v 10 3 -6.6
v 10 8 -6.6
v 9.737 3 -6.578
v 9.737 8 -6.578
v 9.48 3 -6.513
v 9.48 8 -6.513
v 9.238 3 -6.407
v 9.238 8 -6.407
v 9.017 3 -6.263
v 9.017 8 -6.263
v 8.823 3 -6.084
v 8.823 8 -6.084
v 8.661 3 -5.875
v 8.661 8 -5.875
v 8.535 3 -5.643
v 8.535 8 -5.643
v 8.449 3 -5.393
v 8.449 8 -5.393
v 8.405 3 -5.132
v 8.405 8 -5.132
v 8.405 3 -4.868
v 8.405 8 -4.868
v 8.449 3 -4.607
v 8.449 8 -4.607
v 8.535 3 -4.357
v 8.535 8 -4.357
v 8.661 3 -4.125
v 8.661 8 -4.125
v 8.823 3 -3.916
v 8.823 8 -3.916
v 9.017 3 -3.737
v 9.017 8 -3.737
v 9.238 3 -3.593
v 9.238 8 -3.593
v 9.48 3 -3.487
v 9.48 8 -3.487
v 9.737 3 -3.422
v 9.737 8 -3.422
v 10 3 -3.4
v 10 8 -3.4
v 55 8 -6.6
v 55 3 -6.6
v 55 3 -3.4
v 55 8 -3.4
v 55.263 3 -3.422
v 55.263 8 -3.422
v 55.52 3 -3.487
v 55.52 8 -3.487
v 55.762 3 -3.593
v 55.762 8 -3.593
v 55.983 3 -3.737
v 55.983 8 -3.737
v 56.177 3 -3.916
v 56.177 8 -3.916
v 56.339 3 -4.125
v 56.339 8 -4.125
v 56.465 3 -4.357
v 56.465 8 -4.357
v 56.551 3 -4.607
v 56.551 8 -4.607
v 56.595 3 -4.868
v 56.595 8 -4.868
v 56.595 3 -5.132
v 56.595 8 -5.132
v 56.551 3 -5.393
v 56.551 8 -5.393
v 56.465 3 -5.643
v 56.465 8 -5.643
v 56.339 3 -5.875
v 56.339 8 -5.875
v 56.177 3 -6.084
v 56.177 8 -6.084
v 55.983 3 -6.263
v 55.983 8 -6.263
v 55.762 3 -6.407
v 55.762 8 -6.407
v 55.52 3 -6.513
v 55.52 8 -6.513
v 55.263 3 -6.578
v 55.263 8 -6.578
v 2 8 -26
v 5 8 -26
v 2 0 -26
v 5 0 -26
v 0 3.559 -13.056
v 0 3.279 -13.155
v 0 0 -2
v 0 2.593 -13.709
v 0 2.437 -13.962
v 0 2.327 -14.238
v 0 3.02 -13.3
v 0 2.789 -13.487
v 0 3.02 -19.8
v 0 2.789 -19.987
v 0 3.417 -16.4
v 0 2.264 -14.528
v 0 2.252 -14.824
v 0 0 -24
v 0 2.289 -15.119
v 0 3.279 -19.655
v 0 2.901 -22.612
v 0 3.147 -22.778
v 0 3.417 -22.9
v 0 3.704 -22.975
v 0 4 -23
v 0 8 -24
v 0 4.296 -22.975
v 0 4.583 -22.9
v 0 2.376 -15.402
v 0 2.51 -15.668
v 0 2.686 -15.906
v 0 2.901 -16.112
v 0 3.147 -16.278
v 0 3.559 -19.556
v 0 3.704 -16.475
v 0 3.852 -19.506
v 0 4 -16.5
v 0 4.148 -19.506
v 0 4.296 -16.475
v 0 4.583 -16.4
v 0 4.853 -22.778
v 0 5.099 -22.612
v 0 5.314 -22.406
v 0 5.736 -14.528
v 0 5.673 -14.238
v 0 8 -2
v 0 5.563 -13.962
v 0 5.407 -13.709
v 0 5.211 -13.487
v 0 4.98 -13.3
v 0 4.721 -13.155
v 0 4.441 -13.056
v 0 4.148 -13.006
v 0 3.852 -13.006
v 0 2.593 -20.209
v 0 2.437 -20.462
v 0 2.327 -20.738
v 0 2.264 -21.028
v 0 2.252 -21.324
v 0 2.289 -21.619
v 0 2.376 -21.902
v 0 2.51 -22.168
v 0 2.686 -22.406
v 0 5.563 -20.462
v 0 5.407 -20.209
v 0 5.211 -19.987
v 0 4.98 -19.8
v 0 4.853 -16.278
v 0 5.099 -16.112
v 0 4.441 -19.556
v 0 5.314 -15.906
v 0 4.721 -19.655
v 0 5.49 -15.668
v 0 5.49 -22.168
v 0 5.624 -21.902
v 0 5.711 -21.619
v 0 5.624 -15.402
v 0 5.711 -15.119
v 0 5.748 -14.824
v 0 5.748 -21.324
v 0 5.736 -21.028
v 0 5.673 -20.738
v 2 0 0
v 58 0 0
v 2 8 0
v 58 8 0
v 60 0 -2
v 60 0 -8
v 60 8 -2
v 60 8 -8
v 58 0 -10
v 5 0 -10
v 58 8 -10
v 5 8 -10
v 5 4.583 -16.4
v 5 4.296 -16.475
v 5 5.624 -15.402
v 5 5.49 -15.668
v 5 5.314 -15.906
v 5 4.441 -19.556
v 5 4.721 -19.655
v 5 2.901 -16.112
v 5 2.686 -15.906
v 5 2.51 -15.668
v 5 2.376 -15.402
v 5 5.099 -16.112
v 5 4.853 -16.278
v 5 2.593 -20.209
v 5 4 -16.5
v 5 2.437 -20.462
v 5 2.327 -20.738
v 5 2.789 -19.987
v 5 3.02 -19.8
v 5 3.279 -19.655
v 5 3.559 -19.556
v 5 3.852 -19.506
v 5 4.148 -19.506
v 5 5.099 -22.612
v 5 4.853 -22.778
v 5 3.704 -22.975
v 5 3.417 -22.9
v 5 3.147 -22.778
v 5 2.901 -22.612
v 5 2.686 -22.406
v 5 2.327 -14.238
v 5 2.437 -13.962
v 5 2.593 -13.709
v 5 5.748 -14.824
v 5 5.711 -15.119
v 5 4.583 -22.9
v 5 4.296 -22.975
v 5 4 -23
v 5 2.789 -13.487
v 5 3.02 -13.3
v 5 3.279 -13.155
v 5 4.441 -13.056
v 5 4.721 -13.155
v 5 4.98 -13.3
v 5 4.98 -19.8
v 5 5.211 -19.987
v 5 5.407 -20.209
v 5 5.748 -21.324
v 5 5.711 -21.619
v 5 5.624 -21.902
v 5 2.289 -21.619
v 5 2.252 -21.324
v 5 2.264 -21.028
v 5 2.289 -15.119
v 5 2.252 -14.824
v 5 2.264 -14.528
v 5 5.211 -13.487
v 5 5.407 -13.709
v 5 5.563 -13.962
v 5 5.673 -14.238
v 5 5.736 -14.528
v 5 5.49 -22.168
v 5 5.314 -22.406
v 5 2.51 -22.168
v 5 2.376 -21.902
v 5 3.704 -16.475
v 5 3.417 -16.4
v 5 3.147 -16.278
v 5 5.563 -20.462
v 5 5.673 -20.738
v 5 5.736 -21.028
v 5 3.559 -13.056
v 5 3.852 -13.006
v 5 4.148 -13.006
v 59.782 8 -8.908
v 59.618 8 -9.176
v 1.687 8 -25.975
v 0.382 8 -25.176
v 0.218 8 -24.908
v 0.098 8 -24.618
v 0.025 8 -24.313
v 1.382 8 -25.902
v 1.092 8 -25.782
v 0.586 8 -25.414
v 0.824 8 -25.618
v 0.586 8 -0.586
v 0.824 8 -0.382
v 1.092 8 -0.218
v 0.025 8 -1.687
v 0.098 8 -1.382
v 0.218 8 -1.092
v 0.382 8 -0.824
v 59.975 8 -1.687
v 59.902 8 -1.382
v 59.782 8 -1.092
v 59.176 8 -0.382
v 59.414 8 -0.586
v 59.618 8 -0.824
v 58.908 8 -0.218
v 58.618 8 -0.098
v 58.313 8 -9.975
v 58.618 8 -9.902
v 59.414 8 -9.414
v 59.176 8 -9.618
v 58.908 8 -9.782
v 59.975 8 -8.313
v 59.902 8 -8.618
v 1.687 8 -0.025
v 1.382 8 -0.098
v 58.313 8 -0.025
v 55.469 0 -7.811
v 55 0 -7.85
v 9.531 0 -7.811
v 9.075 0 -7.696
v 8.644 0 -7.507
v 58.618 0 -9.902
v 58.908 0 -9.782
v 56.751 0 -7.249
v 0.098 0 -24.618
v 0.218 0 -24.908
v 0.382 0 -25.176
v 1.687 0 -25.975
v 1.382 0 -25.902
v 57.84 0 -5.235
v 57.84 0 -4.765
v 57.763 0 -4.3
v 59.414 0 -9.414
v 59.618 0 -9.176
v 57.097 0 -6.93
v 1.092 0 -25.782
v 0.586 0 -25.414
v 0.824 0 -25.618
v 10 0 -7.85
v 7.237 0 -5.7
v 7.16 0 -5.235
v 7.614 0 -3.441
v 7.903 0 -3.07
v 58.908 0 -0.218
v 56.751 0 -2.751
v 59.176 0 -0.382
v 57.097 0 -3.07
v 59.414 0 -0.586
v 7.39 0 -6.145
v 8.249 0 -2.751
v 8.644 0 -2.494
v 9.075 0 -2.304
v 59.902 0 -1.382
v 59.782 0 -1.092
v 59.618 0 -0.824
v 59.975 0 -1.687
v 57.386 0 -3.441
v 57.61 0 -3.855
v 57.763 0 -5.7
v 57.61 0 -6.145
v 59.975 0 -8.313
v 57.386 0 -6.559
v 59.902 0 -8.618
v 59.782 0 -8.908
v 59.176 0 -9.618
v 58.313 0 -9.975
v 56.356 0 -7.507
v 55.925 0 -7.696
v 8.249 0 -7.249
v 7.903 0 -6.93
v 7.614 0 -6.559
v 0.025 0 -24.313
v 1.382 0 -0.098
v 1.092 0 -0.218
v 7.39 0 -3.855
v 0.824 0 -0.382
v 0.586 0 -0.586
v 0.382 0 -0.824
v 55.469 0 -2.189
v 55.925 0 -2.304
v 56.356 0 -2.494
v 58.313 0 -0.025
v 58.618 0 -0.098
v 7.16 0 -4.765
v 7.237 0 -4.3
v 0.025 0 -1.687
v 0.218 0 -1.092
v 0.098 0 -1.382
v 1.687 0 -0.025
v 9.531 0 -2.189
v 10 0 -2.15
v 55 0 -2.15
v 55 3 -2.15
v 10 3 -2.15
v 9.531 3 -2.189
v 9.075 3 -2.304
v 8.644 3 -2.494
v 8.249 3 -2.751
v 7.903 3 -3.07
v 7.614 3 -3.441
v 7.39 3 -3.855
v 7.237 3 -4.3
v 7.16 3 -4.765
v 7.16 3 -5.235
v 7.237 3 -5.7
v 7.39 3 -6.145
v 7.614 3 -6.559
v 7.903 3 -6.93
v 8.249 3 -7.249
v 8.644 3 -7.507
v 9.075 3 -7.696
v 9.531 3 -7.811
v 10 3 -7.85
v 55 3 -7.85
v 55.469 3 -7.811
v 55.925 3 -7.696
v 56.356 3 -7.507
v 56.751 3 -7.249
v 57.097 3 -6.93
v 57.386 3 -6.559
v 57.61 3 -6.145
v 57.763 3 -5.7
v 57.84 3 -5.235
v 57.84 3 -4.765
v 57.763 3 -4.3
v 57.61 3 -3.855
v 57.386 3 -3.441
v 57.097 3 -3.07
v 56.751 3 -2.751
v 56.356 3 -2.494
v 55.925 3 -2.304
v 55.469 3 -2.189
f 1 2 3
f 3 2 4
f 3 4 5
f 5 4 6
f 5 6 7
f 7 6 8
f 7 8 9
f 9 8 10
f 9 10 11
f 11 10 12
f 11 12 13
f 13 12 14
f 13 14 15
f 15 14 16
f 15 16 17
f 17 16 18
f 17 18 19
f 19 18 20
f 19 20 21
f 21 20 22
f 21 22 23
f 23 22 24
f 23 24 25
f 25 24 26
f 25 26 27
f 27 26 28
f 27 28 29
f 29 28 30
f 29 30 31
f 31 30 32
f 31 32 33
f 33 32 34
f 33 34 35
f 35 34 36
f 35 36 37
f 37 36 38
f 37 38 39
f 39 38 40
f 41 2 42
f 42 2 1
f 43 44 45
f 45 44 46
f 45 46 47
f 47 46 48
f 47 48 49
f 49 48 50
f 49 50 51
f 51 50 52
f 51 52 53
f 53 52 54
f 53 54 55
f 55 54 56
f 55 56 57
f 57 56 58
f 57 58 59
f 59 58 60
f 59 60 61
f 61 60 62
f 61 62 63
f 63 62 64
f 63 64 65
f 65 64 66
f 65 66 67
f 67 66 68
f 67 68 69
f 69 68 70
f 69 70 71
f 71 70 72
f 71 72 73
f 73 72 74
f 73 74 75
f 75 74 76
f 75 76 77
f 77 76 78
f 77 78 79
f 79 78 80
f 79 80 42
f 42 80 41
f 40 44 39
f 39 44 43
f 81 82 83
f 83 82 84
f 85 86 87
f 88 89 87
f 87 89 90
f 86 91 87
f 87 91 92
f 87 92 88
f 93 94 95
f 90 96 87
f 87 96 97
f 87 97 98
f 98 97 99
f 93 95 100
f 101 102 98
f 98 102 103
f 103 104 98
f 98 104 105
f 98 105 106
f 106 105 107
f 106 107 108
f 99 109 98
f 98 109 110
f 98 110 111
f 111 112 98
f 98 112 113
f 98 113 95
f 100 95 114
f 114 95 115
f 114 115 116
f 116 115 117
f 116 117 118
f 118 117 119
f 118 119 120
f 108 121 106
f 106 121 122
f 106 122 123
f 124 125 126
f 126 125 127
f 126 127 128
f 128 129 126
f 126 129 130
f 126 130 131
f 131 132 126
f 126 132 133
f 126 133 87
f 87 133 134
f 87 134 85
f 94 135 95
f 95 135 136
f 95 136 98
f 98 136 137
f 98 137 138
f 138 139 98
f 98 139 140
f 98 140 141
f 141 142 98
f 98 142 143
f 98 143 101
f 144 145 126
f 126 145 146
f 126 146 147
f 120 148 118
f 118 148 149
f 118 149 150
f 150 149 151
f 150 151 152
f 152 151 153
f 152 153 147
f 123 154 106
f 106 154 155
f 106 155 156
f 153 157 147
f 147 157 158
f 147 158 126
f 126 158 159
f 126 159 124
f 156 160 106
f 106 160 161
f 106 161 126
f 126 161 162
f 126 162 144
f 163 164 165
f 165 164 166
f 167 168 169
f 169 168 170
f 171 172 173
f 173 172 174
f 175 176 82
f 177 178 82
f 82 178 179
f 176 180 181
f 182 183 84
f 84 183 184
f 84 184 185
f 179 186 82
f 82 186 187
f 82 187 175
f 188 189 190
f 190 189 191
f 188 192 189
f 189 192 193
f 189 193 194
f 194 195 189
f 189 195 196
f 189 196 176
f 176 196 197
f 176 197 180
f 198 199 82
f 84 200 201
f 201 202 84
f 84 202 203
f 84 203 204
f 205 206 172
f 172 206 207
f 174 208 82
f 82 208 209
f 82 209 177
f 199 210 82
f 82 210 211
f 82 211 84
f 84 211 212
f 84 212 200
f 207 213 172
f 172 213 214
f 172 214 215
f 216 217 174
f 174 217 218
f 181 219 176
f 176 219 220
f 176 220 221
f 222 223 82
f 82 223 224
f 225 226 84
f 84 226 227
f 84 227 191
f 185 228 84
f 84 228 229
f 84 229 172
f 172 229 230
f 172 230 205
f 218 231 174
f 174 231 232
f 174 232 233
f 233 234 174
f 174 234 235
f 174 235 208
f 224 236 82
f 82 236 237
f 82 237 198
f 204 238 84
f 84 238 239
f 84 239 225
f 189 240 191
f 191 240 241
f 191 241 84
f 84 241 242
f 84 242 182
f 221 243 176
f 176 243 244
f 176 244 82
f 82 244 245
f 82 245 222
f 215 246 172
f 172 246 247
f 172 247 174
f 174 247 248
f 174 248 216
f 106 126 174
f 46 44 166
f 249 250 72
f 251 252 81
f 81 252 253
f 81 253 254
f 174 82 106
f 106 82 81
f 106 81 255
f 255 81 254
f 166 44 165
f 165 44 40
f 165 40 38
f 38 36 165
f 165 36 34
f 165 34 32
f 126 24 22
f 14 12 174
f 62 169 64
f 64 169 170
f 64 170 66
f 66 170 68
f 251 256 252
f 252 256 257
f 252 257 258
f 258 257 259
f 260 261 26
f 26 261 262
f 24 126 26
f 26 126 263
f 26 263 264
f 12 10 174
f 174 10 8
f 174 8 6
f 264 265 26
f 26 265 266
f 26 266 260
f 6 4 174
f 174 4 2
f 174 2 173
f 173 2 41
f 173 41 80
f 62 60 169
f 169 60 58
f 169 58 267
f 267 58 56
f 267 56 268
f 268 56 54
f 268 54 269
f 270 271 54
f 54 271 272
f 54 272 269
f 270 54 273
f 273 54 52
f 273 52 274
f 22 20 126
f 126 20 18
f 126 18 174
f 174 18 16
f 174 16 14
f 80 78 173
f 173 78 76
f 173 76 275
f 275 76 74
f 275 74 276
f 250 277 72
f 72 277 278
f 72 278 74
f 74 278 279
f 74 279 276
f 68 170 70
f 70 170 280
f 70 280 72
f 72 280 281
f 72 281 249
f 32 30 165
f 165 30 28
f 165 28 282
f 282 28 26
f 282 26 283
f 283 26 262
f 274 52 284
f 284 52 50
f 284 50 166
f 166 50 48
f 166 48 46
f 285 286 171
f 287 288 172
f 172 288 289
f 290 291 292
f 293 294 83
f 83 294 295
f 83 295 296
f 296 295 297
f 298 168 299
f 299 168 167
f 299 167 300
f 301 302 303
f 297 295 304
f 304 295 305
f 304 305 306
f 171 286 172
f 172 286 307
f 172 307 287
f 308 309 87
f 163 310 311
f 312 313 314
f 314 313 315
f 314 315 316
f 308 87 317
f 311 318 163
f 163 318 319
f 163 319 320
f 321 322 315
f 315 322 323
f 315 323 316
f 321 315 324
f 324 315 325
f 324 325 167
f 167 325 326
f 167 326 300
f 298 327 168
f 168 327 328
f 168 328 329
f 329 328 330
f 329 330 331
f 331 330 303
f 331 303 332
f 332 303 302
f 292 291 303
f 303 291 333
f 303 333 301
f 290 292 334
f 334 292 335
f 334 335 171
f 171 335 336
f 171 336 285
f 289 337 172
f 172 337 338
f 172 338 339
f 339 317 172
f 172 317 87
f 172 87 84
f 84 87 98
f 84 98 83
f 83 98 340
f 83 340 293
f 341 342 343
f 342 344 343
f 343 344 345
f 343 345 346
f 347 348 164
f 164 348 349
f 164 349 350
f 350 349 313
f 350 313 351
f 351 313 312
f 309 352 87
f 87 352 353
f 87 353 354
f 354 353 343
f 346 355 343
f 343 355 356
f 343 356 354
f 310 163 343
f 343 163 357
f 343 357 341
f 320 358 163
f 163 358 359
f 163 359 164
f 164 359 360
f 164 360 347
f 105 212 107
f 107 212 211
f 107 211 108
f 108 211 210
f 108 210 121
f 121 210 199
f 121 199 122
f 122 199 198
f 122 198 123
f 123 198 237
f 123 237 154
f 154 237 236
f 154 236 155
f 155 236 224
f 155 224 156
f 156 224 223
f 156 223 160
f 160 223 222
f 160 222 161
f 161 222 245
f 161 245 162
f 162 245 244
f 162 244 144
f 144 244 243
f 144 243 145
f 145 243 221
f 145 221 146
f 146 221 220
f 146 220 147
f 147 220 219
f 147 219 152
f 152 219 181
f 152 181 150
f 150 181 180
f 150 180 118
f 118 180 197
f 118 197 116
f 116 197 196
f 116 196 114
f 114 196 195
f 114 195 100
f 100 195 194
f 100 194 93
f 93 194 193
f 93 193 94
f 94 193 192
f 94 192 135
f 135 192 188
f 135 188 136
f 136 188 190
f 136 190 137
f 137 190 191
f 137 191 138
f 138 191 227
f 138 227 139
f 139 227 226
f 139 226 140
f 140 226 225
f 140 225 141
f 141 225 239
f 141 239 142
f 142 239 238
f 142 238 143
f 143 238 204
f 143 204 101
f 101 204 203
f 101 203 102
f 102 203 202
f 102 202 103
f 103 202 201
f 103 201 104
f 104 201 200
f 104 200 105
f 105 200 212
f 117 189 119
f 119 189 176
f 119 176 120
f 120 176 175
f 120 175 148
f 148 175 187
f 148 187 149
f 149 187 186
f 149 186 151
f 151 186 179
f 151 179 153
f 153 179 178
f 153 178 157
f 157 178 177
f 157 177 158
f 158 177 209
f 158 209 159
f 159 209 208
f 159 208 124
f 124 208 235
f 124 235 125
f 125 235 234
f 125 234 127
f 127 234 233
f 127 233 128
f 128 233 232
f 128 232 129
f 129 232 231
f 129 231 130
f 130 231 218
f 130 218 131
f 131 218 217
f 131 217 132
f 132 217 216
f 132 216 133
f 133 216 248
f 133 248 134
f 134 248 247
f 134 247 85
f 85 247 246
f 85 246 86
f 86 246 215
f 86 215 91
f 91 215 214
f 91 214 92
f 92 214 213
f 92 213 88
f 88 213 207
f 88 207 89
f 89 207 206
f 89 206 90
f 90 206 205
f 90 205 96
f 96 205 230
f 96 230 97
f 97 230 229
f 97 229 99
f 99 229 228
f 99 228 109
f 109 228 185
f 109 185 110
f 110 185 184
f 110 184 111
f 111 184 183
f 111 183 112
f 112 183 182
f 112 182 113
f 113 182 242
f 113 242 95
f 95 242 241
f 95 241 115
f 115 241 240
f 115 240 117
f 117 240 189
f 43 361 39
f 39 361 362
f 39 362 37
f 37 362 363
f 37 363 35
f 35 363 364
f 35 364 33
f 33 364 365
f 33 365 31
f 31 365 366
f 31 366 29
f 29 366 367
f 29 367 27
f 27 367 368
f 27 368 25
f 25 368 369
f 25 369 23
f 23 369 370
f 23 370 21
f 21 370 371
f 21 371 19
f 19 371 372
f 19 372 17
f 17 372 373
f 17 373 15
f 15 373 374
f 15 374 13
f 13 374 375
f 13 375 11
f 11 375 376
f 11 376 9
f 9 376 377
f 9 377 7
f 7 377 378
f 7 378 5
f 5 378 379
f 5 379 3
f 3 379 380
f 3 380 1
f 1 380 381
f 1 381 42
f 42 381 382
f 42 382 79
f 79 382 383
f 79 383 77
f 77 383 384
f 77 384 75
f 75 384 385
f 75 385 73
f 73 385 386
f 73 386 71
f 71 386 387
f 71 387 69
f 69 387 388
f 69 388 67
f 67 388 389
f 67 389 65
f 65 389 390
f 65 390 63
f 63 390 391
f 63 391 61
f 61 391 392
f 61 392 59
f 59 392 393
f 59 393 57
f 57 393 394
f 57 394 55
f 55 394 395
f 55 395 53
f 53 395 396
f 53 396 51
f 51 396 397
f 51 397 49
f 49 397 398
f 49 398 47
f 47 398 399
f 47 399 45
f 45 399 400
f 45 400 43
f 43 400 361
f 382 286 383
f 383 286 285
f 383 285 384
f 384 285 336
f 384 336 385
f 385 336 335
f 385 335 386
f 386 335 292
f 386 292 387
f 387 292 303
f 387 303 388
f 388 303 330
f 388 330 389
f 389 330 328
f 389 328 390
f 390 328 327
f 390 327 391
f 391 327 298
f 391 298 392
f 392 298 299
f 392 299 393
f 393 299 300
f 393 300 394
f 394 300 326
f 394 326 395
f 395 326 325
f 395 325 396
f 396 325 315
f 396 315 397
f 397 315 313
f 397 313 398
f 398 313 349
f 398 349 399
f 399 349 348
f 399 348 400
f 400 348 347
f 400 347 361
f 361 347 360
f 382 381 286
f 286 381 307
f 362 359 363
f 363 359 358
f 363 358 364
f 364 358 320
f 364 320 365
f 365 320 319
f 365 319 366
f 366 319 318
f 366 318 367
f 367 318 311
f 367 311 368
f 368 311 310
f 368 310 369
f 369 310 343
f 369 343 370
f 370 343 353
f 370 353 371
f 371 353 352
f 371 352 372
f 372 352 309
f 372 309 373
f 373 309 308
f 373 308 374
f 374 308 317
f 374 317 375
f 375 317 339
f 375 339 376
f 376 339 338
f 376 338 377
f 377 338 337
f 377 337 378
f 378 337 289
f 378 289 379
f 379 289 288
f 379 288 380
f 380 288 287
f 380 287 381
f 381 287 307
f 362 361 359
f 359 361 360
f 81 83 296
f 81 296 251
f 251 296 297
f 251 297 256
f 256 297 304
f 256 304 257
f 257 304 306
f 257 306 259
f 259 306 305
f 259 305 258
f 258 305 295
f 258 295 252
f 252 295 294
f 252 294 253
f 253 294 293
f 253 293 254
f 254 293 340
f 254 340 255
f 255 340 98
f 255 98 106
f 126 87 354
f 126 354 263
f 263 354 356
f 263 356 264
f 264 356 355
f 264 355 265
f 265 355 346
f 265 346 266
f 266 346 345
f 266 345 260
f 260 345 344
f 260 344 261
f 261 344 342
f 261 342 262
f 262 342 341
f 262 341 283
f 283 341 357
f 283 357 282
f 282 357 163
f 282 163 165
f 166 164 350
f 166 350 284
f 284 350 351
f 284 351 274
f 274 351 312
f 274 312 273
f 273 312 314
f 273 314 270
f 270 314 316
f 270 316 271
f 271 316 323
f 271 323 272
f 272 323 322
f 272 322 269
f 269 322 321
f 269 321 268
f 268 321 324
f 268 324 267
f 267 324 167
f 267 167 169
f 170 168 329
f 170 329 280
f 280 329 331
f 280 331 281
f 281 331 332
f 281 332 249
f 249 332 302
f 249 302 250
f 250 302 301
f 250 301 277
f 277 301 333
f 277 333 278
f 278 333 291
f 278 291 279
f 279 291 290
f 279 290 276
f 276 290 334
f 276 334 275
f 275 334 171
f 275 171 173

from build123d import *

# Parameters (mm, degrees)
BOSS_EXTRUDE1_DEPTH = 8
SKETCH2_R           = 1.75
CUT_EXTRUDE1_DEPTH  = 62.359595827
CUT_EXTRUDE2_DEPTH  = 66.878676368
CUT_EXTRUDE3_DEPTH  = 3
FILLET1_R           = 2


with BuildPart() as part:
    # Sketch1 → Boss-Extrude1 (new body)
    with BuildSketch(Plane(origin=(0, 0, 0), x_dir=(1, 0, 0), z_dir=(0, 1, 0))):
        Polygon((0, 26), (0, 0), (60, 0), (60, 10), (5, 10), (5, 26), align=None)
    extrude(amount=BOSS_EXTRUDE1_DEPTH)

    # Sketch2 → Cut-Extrude1 (cut, through all)
    with BuildSketch(Plane(origin=(5, 0, 0), x_dir=(0, 0, -1), z_dir=(1, 0, 0))):
        with Locations((21.25, 4)):
            Circle(SKETCH2_R)
        with Locations((14.75, 4)):
            Circle(SKETCH2_R)
    extrude(amount=-CUT_EXTRUDE1_DEPTH, mode=Mode.SUBTRACT)

    # Sketch3 → Cut-Extrude2 (cut, through all)
    with BuildSketch(Plane(origin=(0, 8, 0), x_dir=(1, 0, 0), z_dir=(0, 1, 0))):
        with BuildLine():
            Line((10, 6.6), (55, 6.6))
            ThreePointArc((55, 6.6), (56.6, 5), (55, 3.4))
            Line((55, 3.4), (10, 3.4))
            ThreePointArc((10, 3.4), (8.4, 5), (10, 6.6))
        make_face()
    extrude(amount=-CUT_EXTRUDE2_DEPTH, mode=Mode.SUBTRACT)

    # Sketch4 → Cut-Extrude3 (cut)
    with BuildSketch(Plane.XZ):
        with BuildLine():
            Line((55, -7.85), (10, -7.85))
            ThreePointArc((10, -7.85), (7.15, -5), (10, -2.15))
            Line((10, -2.15), (55, -2.15))
            ThreePointArc((55, -2.15), (57.85, -5), (55, -7.85))
        make_face()
    extrude(amount=-CUT_EXTRUDE3_DEPTH, mode=Mode.SUBTRACT)

    # Fillet1
    fillet1_edges = [part.edges().sort_by_distance(p)[0] for p in [
        (60, 4, -10),
        (60, 4, 0),
        (0, 4, 0),
        (0, 4, -26),
    ]]
    fillet(fillet1_edges, radius=FILLET1_R)


solid = part.part
